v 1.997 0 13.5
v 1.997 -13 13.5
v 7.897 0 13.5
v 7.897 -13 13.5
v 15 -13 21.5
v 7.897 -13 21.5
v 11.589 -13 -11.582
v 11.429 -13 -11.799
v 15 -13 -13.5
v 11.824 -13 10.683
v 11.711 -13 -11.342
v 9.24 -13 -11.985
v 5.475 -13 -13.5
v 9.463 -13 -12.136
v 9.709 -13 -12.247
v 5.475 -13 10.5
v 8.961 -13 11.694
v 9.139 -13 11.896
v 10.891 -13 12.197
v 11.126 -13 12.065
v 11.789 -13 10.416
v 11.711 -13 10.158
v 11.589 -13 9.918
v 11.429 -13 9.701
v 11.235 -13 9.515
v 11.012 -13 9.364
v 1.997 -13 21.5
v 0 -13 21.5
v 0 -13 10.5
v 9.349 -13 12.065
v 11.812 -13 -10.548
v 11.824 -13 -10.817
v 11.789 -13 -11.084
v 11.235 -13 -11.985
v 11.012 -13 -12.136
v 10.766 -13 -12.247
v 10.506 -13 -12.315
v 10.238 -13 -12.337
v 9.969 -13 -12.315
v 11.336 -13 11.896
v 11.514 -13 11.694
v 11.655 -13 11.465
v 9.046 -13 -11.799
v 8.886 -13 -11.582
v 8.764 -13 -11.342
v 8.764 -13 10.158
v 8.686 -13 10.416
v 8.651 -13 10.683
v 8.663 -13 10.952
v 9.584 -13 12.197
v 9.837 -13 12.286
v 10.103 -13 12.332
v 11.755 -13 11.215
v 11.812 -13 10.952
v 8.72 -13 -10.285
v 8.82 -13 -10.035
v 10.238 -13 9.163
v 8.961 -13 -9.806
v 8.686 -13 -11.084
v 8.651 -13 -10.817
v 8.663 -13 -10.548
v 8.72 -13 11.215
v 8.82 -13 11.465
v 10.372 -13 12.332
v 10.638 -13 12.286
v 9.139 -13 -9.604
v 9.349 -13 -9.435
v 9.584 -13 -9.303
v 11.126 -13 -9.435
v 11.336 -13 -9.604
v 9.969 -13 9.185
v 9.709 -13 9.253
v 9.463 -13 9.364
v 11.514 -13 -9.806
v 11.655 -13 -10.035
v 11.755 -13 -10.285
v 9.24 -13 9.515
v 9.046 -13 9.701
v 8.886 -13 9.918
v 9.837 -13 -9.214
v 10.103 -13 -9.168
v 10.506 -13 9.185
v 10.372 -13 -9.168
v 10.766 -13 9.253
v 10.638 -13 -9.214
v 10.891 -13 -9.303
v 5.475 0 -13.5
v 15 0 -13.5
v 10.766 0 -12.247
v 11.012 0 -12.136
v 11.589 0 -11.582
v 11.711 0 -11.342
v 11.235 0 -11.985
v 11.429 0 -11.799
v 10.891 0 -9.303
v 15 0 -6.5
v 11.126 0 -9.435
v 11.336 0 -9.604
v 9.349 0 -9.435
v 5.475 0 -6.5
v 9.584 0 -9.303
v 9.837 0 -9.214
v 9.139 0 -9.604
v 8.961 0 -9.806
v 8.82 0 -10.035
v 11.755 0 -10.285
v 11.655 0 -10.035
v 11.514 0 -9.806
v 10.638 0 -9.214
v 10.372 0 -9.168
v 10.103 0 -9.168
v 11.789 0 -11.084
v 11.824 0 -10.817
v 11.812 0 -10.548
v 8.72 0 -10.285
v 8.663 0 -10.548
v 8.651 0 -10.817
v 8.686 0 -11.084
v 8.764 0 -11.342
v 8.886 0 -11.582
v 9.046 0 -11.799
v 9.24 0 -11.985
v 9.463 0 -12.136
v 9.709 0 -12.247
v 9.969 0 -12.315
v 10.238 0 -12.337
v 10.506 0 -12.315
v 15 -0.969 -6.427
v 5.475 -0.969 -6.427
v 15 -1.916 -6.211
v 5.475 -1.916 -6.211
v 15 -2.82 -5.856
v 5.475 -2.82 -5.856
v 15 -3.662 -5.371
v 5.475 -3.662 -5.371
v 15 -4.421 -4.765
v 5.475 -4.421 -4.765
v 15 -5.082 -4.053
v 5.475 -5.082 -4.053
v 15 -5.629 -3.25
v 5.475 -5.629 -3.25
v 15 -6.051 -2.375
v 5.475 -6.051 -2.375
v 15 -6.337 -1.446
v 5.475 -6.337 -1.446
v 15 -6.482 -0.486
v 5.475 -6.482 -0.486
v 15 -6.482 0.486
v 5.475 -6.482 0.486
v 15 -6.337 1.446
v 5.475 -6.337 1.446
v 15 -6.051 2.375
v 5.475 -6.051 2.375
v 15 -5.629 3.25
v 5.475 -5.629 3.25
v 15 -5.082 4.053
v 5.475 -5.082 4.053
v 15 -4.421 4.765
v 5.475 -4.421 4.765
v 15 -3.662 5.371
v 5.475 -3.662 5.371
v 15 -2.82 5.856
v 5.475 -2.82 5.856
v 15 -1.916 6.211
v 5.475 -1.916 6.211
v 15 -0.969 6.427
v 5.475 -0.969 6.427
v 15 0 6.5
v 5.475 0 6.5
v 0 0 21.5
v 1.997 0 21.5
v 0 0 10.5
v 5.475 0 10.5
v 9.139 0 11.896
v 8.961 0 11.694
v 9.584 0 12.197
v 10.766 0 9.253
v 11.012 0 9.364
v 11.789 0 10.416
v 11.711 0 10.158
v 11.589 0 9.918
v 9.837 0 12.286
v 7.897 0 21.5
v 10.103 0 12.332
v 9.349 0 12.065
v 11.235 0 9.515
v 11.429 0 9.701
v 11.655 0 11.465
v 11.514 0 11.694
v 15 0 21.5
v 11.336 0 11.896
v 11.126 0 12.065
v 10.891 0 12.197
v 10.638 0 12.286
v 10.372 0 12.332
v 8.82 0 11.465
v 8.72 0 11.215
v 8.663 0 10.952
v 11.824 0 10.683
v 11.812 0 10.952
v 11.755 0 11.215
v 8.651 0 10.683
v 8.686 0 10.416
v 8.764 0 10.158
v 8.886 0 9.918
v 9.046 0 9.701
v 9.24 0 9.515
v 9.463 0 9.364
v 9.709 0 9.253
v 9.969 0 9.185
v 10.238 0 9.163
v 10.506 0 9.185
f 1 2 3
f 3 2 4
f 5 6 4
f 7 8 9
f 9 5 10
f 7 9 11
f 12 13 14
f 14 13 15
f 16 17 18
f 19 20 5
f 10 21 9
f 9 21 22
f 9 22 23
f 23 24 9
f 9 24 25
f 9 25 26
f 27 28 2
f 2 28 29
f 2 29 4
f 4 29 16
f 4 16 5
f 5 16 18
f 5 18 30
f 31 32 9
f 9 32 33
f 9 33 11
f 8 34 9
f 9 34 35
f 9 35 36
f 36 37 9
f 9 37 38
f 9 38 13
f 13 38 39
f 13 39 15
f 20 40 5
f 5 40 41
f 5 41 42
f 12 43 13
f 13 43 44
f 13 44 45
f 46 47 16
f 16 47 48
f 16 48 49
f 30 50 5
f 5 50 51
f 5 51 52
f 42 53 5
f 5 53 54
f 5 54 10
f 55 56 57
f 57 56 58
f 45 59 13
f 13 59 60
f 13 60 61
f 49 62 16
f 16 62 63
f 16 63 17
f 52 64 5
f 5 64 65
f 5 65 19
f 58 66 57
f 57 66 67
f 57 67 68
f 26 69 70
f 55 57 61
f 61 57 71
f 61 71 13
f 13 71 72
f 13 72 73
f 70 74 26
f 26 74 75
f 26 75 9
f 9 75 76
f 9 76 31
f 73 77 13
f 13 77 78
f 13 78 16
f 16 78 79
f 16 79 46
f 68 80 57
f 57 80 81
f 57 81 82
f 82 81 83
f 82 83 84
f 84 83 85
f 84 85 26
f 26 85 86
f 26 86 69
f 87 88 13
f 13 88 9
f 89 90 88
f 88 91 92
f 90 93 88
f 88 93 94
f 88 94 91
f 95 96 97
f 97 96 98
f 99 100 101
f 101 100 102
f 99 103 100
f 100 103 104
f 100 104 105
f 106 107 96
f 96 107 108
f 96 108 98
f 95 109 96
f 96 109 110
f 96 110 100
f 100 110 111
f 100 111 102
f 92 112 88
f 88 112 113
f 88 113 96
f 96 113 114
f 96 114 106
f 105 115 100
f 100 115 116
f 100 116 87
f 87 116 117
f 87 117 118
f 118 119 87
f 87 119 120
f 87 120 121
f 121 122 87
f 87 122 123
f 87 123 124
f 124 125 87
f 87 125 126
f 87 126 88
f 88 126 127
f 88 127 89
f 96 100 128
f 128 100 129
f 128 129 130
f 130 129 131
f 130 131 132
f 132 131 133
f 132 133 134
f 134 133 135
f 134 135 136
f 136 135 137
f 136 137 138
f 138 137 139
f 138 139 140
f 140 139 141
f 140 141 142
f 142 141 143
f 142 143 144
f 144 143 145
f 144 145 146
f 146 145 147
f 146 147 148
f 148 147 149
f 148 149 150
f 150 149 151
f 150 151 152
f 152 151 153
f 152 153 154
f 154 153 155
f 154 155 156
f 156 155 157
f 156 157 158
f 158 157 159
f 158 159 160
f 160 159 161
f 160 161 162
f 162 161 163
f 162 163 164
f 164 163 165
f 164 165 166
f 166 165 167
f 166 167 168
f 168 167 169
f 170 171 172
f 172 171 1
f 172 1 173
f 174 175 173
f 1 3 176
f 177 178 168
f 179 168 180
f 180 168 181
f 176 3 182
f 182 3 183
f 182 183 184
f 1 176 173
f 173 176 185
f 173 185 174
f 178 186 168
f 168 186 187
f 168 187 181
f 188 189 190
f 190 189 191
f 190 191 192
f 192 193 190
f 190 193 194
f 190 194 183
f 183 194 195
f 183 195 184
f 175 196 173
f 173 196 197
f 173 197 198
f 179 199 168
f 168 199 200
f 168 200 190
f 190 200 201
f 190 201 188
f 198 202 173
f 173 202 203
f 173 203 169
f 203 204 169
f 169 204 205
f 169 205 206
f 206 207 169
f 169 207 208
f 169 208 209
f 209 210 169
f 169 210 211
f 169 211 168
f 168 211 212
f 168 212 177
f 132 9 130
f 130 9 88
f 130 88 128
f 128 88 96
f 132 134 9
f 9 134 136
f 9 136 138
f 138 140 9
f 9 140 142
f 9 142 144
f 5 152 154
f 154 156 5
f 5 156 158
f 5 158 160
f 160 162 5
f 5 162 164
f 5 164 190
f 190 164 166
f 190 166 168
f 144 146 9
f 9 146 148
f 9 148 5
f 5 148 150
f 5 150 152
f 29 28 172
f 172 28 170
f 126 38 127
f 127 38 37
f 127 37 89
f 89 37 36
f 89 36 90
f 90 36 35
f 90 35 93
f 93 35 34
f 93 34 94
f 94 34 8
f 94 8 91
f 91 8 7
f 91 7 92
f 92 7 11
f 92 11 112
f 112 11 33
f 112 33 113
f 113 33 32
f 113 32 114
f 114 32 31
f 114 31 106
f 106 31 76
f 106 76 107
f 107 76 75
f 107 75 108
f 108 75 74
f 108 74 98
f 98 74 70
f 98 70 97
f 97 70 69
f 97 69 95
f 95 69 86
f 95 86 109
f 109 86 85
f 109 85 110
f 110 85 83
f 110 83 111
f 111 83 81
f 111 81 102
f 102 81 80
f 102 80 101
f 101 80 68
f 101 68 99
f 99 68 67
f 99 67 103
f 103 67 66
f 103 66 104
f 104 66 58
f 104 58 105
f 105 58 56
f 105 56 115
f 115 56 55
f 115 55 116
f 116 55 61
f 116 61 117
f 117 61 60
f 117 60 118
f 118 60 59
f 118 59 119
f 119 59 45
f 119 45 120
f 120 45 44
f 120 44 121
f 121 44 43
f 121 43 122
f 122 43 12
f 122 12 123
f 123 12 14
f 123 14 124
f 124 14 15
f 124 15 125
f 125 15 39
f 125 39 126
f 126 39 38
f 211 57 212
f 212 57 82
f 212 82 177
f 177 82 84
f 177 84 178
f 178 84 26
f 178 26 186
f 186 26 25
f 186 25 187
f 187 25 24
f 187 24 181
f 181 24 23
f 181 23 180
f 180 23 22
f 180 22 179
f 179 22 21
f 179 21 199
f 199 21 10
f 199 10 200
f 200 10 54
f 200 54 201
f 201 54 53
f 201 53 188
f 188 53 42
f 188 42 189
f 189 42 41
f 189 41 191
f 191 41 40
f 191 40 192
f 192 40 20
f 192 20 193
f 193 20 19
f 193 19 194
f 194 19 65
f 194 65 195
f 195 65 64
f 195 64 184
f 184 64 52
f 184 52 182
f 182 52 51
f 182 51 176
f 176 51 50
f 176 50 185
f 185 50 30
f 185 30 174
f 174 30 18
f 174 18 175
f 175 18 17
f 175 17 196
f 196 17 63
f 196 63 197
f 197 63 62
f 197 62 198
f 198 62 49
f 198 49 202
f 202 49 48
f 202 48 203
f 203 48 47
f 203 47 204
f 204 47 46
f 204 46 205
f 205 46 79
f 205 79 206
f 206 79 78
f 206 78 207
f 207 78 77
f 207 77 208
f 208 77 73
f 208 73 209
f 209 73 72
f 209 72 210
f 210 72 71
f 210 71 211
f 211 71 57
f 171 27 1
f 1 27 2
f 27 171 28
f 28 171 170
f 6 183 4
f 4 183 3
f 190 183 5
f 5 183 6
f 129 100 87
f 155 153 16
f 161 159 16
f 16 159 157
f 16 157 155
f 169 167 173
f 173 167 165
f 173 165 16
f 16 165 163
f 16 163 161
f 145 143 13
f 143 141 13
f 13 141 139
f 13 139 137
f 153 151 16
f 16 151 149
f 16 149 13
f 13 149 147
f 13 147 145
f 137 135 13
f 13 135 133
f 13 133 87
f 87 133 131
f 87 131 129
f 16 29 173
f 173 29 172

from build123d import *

# Parameters (mm, degrees)
BOSS_EXTRUDE1_DEPTH = 15
SKETCH4_R           = 1.5875
CUT_EXTRUDE2_DEPTH  = 25.005207768
SKETCH6_W           = 7.103151839
SKETCH6_H           = 13
SKETCH6_W_2         = 1.996848161
BOSS_EXTRUDE2_DEPTH = 8
SKETCH7_W           = 5.475
SKETCH7_H           = 24
CUT_EXTRUDE3_DEPTH  = 30.261749777


with BuildPart() as part:
    # Sketch1 → Boss-Extrude1 (new body)
    with BuildSketch(Plane(origin=(0, 0, 0), x_dir=(0, 0, -1), z_dir=(1, 0, 0))):
        with BuildLine():
            Line((6.5, 0), (13.5, 0))
            Line((13.5, 0), (13.5, -13))
            Line((13.5, -13), (-13.5, -13))
            Line((-13.5, -13), (-13.5, 0))
            Line((-13.5, 0), (-6.5, 0))
            ThreePointArc((-6.5, 0), (0, -6.5), (6.5, 0))
        make_face()
    extrude(amount=BOSS_EXTRUDE1_DEPTH)

    # Sketch4 → Cut-Extrude2 (cut, through all)
    with BuildSketch(Plane.XZ.offset(13)):
        with Locations(Location((10.2375, -10.75, 0), (0, 0, 270))):
            Circle(SKETCH4_R)
        with Locations(Location((10.2375, 10.75, 0), (0, 0, 270))):
            Circle(SKETCH4_R)
    extrude(amount=-CUT_EXTRUDE2_DEPTH, mode=Mode.SUBTRACT)

    # Sketch6 → Boss-Extrude2 (add)
    with BuildSketch(Plane.XY.offset(13.5)):
        with Locations((11.448424081, -6.5)):
            Rectangle(SKETCH6_W, SKETCH6_H)
        with Locations((0.998424081, -6.5)):
            Rectangle(SKETCH6_W_2, SKETCH6_H)
    extrude(amount=BOSS_EXTRUDE2_DEPTH)

    # Sketch7 → Cut-Extrude3 (cut, through all)
    with BuildSketch(Plane(origin=(0, 0, 0), x_dir=(1, 0, 0), z_dir=(0, 1, 0))):
        with Locations((2.7375, 1.5)):
            Rectangle(SKETCH7_W, SKETCH7_H)
    extrude(amount=-CUT_EXTRUDE3_DEPTH, mode=Mode.SUBTRACT)


solid = part.part
